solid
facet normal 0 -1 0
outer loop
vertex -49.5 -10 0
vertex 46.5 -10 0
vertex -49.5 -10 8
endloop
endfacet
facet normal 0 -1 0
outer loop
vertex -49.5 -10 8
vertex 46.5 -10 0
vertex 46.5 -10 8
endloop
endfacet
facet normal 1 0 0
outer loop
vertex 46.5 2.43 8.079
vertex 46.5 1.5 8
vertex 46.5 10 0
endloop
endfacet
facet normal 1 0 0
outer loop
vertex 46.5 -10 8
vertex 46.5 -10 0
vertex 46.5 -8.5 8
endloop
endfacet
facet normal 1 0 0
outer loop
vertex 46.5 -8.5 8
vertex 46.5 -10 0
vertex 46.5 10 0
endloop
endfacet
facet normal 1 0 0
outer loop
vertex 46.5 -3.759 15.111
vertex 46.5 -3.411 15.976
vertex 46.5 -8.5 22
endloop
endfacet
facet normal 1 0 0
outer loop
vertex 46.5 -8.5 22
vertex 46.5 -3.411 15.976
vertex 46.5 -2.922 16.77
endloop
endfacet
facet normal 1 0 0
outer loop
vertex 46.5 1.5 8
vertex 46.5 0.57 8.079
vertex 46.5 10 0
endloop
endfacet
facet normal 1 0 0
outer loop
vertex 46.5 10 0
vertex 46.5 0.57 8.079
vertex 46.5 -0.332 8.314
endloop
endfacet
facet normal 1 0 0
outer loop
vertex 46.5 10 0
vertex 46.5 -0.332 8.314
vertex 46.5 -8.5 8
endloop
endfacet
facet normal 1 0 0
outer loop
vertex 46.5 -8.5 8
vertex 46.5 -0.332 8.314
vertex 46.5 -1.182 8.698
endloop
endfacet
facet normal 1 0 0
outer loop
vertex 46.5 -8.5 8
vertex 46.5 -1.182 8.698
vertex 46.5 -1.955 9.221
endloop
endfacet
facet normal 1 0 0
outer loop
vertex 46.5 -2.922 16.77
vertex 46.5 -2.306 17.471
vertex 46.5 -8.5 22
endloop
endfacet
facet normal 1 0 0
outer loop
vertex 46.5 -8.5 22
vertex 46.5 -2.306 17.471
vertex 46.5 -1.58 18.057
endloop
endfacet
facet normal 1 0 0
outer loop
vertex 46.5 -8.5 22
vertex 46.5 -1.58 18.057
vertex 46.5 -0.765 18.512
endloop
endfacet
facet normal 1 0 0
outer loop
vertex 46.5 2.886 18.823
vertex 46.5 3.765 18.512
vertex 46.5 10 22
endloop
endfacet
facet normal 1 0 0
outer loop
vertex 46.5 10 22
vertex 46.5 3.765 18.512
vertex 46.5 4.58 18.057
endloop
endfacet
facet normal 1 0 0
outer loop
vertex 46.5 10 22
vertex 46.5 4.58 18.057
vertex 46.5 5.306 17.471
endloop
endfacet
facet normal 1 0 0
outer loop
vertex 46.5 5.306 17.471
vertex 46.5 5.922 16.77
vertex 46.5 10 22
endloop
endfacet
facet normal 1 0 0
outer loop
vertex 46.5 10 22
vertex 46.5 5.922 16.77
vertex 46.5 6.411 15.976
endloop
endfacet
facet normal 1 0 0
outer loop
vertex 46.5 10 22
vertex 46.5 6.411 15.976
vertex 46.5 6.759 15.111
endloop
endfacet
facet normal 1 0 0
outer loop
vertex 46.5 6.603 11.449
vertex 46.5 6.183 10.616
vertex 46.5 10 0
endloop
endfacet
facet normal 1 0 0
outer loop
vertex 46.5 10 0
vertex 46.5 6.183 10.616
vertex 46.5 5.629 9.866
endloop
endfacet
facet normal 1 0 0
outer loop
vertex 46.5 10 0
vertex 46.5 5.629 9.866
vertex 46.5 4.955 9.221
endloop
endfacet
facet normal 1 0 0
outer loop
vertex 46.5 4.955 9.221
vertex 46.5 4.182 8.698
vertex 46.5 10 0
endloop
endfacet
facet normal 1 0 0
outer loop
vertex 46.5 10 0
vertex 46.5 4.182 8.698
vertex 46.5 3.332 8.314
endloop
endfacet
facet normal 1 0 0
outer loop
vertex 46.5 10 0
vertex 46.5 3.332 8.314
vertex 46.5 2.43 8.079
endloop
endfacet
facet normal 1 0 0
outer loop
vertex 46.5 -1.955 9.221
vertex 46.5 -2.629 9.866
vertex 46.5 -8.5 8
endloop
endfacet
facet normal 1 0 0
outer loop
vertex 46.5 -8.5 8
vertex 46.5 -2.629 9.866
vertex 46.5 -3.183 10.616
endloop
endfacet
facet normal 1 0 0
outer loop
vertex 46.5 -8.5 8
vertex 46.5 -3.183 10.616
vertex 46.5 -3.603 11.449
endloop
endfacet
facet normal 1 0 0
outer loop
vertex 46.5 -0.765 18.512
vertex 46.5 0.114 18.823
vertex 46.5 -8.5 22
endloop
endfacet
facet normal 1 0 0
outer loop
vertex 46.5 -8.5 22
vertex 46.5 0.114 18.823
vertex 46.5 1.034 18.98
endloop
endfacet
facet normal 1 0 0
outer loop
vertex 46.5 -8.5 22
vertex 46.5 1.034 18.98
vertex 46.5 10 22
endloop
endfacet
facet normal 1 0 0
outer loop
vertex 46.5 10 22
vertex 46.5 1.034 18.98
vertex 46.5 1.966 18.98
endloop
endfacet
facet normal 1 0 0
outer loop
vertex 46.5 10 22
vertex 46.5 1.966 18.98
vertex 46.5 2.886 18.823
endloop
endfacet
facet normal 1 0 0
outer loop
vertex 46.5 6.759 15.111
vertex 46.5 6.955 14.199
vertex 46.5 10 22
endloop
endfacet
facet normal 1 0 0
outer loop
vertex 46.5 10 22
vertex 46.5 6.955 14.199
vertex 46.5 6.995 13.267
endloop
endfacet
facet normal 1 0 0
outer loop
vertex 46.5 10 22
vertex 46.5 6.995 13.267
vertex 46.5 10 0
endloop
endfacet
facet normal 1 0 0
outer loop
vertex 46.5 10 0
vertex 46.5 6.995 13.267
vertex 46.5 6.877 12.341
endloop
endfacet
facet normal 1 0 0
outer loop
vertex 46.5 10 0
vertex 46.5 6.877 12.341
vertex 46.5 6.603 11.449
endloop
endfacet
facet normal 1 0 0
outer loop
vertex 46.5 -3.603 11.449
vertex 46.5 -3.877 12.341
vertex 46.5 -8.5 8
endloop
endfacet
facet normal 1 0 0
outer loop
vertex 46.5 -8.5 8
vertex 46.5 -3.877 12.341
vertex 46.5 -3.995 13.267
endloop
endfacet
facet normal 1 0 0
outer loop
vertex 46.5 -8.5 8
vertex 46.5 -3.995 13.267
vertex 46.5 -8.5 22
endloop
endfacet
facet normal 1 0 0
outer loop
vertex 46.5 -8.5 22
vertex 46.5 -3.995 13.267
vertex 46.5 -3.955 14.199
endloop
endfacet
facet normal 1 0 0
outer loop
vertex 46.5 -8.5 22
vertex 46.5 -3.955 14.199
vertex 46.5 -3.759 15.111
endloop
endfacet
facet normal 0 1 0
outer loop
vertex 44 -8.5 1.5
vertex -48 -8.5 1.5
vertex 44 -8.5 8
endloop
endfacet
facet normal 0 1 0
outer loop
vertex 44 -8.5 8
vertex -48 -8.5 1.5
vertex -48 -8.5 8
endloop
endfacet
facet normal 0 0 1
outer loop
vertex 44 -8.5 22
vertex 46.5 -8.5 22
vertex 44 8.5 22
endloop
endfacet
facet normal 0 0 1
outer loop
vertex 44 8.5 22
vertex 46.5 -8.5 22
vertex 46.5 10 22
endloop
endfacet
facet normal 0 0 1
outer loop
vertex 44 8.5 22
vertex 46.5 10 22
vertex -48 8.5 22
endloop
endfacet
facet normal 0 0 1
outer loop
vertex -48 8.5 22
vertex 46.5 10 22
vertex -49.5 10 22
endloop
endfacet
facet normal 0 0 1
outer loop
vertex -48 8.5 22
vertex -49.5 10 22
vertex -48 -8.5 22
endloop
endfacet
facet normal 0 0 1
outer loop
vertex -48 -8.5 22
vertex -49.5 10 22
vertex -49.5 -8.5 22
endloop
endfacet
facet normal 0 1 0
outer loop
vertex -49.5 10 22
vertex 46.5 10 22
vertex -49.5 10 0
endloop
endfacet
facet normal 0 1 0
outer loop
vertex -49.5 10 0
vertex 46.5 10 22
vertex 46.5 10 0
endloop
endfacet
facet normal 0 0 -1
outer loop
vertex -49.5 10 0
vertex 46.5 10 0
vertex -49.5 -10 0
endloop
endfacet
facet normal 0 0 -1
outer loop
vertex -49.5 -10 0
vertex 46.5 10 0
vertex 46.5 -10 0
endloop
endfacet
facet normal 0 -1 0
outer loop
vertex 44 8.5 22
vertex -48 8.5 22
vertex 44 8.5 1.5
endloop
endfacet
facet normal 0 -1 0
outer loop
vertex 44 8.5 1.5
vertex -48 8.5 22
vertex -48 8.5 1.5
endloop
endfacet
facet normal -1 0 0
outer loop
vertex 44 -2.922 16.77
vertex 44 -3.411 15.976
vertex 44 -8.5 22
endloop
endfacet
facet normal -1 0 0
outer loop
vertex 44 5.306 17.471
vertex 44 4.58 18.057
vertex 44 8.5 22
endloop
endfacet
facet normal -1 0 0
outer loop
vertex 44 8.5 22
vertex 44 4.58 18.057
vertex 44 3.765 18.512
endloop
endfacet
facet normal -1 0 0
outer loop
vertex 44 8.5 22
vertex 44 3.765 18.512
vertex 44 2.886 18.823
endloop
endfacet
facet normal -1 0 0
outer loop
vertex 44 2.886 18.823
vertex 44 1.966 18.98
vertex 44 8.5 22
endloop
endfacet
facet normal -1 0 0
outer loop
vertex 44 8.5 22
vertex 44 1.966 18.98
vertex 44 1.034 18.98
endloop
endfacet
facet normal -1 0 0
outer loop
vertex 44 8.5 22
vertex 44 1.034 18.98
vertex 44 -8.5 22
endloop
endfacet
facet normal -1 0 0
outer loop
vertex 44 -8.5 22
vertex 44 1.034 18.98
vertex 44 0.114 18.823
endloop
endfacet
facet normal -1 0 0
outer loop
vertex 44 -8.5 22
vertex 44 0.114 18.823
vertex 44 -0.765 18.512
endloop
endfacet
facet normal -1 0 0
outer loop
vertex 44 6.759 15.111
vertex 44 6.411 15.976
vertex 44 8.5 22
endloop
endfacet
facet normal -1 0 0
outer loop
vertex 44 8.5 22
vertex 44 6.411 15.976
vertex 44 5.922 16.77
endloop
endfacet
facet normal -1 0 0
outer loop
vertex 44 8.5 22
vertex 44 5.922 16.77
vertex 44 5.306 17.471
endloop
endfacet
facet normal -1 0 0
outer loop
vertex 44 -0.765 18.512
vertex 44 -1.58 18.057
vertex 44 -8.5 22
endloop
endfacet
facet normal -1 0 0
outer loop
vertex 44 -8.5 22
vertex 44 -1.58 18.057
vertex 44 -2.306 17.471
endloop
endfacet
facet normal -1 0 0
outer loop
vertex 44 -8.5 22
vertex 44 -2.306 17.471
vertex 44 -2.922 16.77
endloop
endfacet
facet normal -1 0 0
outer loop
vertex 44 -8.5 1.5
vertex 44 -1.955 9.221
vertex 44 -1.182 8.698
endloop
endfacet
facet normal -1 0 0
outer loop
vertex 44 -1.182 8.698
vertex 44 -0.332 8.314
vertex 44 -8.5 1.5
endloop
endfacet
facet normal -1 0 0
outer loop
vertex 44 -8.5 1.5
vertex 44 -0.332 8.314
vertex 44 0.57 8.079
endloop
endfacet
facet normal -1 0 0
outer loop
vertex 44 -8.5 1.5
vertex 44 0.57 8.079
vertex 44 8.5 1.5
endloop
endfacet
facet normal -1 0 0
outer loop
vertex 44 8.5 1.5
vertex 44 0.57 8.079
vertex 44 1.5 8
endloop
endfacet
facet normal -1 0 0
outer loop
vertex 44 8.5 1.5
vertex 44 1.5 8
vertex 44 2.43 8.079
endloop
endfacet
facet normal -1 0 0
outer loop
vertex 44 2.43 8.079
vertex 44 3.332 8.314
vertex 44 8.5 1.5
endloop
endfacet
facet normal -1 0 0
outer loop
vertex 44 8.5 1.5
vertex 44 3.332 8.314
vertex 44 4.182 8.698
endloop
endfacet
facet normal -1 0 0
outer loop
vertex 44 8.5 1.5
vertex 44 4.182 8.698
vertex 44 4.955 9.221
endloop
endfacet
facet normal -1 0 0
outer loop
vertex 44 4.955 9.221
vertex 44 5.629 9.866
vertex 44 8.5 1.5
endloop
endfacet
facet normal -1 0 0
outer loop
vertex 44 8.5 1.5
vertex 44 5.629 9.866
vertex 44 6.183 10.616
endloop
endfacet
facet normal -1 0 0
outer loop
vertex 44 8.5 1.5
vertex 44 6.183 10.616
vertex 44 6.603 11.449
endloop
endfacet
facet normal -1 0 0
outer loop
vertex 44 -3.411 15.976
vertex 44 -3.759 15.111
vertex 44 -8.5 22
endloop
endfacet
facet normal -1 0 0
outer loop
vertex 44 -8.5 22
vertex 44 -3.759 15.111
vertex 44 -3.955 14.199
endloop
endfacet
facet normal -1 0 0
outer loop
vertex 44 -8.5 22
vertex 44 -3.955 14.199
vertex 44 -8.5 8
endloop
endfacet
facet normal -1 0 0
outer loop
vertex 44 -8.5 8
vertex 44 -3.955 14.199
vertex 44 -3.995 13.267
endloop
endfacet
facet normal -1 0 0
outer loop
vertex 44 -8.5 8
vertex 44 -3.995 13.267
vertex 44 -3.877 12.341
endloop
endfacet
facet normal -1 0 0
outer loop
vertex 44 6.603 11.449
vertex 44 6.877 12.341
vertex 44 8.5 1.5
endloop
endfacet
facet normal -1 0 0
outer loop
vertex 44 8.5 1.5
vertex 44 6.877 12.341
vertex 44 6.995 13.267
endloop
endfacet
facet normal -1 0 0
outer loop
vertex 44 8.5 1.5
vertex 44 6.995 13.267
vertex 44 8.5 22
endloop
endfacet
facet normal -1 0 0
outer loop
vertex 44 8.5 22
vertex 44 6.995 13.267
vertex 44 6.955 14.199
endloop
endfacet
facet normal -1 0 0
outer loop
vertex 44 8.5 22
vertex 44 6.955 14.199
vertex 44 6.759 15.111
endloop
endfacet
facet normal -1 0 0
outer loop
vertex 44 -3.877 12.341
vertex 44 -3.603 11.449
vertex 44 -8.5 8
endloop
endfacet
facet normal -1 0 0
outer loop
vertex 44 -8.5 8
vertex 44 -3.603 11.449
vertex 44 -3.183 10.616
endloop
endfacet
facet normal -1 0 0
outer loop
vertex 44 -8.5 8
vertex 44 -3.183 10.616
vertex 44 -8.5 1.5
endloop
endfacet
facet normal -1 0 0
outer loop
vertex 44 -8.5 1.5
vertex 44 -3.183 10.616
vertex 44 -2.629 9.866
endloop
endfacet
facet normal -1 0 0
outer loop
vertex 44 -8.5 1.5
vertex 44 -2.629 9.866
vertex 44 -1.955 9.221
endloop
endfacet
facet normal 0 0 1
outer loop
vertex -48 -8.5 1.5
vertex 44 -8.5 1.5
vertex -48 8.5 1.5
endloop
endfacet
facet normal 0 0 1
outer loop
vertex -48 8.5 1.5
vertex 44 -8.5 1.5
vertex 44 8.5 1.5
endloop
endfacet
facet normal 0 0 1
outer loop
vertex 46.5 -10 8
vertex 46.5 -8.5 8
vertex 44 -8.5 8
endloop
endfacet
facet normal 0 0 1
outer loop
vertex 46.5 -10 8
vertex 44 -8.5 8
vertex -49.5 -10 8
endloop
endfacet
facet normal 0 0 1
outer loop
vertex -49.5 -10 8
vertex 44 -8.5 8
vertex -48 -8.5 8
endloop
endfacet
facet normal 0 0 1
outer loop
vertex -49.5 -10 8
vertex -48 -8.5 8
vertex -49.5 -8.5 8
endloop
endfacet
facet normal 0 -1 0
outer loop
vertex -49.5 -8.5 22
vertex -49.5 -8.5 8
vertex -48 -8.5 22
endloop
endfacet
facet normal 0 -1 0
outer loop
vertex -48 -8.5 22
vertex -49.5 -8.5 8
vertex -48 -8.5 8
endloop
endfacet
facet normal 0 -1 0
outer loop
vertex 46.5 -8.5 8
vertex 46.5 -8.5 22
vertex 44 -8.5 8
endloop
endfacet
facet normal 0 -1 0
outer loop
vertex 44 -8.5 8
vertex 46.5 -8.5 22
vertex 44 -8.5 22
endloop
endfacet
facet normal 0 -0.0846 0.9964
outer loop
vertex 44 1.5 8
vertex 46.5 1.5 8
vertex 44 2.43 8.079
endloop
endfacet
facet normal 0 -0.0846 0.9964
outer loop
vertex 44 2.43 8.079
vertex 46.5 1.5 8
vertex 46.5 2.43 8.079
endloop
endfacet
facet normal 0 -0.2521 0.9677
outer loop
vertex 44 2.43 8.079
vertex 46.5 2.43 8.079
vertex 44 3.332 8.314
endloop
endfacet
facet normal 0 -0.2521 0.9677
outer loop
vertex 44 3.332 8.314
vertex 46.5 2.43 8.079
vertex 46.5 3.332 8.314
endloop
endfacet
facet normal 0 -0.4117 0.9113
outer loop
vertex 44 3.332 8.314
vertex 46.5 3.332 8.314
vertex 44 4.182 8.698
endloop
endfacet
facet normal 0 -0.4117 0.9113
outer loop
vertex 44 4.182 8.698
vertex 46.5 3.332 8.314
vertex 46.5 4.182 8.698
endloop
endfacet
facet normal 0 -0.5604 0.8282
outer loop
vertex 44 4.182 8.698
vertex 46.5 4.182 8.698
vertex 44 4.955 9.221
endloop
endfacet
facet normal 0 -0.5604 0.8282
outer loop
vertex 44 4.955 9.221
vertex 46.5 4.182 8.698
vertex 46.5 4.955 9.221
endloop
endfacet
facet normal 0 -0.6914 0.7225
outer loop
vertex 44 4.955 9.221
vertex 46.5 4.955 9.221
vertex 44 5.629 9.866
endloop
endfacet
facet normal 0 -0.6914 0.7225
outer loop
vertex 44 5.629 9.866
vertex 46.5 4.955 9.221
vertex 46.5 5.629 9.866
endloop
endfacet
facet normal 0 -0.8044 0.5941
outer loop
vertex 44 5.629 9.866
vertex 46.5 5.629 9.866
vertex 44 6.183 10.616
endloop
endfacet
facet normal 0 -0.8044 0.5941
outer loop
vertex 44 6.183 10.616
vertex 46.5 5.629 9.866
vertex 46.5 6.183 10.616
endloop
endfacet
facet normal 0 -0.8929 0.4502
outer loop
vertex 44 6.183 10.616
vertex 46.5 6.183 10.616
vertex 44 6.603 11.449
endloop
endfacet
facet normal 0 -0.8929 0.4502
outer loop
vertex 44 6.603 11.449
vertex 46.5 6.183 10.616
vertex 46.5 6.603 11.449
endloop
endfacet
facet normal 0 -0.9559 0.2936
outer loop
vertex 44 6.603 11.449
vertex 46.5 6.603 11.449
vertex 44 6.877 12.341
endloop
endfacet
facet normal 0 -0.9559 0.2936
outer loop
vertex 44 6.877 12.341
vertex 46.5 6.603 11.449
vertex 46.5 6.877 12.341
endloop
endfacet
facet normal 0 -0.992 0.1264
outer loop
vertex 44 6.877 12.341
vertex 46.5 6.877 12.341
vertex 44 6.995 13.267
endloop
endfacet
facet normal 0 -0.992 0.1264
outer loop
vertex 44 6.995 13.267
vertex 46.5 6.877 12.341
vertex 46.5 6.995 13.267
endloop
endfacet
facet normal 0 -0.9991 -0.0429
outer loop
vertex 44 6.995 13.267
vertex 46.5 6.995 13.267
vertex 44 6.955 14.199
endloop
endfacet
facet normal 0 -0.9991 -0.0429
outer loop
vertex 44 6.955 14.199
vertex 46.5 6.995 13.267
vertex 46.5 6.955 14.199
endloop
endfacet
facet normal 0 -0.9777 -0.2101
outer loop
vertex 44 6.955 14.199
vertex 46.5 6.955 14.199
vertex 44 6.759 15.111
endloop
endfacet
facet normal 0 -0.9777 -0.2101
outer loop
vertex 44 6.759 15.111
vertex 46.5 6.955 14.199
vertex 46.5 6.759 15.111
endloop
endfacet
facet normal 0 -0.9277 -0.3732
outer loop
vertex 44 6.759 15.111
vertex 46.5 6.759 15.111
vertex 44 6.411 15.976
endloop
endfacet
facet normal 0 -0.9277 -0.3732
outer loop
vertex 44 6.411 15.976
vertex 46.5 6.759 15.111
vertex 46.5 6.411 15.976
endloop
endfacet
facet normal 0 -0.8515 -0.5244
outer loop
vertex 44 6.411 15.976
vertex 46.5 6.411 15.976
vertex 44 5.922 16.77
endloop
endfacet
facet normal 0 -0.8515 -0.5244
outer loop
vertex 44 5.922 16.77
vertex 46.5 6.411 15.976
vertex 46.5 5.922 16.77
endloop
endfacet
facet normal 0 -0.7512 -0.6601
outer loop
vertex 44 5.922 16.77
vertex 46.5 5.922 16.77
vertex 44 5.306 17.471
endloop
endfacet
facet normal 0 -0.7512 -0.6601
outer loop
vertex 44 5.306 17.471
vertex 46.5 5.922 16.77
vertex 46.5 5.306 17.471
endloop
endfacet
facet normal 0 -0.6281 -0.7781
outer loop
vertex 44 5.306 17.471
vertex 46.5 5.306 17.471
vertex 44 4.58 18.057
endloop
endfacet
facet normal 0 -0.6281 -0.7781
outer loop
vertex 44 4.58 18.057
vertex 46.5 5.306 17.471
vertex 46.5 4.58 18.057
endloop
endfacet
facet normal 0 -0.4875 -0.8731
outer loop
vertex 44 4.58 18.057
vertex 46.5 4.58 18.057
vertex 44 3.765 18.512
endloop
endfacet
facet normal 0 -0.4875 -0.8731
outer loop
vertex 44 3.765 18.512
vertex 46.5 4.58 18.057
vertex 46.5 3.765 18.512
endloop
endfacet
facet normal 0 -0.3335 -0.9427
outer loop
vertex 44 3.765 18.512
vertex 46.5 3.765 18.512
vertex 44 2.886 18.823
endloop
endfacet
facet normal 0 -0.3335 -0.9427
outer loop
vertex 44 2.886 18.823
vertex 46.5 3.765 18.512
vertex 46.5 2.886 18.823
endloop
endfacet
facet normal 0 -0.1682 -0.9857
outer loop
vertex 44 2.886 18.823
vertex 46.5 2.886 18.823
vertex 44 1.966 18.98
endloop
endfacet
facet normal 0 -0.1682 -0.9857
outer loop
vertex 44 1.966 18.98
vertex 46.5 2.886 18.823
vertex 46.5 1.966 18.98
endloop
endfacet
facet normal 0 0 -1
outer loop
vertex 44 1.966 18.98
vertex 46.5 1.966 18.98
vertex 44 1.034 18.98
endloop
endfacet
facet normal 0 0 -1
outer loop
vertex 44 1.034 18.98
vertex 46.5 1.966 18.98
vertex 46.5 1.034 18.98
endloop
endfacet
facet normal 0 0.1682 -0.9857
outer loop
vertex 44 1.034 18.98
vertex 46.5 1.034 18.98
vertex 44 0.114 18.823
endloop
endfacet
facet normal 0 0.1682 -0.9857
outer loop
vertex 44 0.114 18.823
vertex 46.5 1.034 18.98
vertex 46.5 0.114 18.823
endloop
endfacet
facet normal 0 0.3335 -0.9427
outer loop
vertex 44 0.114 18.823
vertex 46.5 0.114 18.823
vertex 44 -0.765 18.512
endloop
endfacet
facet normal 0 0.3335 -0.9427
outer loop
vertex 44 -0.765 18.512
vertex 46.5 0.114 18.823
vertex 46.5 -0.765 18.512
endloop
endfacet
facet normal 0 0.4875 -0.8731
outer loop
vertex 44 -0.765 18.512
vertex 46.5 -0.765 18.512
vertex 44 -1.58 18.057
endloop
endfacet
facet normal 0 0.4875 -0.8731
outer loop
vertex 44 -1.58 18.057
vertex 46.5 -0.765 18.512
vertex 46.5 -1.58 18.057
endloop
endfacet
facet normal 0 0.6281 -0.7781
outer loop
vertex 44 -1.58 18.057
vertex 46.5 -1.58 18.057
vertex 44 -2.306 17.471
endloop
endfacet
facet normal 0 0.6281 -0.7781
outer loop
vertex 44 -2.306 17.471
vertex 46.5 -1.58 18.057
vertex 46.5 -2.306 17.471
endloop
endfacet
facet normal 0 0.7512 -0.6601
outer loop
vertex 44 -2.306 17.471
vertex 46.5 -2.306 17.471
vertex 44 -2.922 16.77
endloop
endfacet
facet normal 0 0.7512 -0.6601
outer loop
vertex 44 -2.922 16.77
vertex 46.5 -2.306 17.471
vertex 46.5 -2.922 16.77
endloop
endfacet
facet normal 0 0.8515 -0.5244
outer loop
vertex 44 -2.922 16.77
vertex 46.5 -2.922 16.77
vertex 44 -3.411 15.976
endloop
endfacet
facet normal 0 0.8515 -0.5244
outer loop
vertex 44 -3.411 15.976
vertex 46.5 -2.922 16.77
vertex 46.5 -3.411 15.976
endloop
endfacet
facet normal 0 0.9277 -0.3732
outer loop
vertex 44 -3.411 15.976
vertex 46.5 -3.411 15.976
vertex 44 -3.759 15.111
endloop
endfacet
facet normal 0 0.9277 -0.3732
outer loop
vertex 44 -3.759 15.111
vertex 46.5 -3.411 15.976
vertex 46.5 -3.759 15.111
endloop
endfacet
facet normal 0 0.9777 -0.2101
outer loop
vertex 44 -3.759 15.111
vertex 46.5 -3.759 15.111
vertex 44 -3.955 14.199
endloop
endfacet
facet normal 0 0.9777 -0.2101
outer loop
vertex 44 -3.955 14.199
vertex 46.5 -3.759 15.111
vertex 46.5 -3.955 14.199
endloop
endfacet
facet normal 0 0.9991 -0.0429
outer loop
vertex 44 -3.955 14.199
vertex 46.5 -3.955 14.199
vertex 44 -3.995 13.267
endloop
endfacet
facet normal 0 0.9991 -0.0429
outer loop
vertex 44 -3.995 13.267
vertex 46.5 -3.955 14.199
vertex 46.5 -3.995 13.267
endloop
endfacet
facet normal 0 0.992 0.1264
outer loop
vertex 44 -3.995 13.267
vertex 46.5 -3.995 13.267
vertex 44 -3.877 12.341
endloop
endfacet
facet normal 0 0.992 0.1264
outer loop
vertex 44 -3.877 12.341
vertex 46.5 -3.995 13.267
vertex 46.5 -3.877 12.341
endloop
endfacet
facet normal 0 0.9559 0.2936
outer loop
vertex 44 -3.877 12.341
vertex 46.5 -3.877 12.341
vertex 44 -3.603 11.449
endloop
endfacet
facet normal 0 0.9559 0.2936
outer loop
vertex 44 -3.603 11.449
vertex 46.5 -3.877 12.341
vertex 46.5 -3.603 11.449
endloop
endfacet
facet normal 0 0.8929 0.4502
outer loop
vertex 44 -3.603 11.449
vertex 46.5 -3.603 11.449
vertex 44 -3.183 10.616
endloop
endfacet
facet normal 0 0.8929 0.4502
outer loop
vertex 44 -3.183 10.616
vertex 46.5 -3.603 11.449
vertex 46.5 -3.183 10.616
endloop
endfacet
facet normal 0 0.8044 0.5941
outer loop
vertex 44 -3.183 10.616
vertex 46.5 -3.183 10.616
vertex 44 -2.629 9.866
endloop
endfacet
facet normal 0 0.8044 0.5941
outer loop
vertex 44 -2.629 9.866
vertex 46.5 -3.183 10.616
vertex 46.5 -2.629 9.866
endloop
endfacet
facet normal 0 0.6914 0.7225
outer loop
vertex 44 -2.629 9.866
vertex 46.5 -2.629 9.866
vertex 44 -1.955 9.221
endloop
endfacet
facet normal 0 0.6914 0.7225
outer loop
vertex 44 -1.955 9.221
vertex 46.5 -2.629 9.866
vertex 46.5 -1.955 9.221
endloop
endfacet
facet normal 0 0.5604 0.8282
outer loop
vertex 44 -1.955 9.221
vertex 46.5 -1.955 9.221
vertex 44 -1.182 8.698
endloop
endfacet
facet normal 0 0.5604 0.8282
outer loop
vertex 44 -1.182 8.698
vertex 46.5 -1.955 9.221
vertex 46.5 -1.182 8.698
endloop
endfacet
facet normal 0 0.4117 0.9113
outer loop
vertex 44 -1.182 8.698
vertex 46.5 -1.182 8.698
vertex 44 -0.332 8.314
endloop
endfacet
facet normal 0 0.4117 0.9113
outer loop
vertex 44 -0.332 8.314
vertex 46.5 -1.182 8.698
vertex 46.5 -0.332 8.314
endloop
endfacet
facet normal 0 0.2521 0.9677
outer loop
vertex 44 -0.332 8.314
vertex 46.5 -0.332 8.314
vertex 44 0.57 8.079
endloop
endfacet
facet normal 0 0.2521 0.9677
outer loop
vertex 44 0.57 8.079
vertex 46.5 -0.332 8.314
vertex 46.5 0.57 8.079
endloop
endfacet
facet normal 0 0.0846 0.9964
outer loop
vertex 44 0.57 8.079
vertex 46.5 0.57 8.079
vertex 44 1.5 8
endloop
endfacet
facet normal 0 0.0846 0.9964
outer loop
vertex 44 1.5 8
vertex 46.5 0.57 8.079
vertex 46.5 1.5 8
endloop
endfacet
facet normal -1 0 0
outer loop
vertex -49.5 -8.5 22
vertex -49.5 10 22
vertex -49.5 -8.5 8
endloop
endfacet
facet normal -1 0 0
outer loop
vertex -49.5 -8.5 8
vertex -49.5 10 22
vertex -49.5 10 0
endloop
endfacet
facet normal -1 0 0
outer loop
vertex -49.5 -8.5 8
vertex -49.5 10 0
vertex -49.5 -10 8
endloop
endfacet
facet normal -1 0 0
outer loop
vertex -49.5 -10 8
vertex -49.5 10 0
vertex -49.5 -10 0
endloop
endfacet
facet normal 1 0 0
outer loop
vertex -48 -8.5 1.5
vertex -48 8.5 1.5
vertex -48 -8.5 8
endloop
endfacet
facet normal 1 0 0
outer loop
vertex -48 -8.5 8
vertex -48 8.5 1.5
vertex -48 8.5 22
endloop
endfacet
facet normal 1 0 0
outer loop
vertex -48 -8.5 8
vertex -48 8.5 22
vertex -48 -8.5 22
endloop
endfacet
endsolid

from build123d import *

# Parameters (mm, degrees)
SKETCH_1_W          = 93
SKETCH_1_H          = 20
EXTRUDE_1_DEPTH     = 1.5
SKETCH_2_W          = 93
SKETCH_2_H          = 20
SKETCH_2_W_2        = 89
SKETCH_2_H_2        = 17
EXTRUDE_2_DEPTH     = 20.5
SKETCH_3_W          = 14
SKETCH_3_H          = 1.5
CUT_EXTRUDE_1_DEPTH = 101.5
SKETCH_4_R          = 5.5
CUT_EXTRUDE_4_DEPTH = 3
EXTRUDE_3_DEPTH     = 3
SKETCH_7_W          = 3
SKETCH_7_H          = 17
CUT_EXTRUDE_6_DEPTH = 20.5


with BuildPart() as part:
    # Эскиз1 → Бобышка-Вытянуть1 (new body)
    with BuildSketch(Plane.XY):
        Rectangle(SKETCH_1_W, SKETCH_1_H)
    extrude(amount=EXTRUDE_1_DEPTH)

    # Эскиз2 → Бобышка-Вытянуть2 (add)
    with BuildSketch(Plane.XY.offset(1.5)):
        Rectangle(SKETCH_2_W, SKETCH_2_H)
        with Locations((-0.5, 0)):
            Rectangle(SKETCH_2_W_2, SKETCH_2_H_2, mode=Mode.SUBTRACT)
    extrude(amount=EXTRUDE_2_DEPTH)

    # Эскиз3 → Вырез-Вытянуть1 (cut)
    with BuildSketch(Plane(origin=(46.5, 0, 0), x_dir=(0, 0, -1), z_dir=(1, 0, 0))):
        with Locations((-15, -9.25)):
            Rectangle(SKETCH_3_W, SKETCH_3_H)
    extrude(amount=-CUT_EXTRUDE_1_DEPTH, mode=Mode.SUBTRACT)

    # Эскиз4 → Вырез-Вытянуть4 (cut)
    with BuildSketch(Plane(origin=(46.5, 0, 0), x_dir=(0, 0, -1), z_dir=(1, 0, 0))):
        with Locations((-13.5, 1.5)):
            Circle(SKETCH_4_R)
    extrude(amount=-CUT_EXTRUDE_4_DEPTH, mode=Mode.SUBTRACT)

    # Эскиз6 → Бобышка-Вытянуть3 (add)
    with BuildSketch(Plane.ZY.offset(46.5)):
        Polygon((0, 10), (22, 10), (22, -8.5), (8, -8.5), (8, -10), (0, -10), (0, -8.5), align=None)
    extrude(amount=EXTRUDE_3_DEPTH)

    # Эскиз7 → Вырез-Вытянуть6 (cut)
    with BuildSketch(Plane.XY.offset(22)):
        with Locations((-46.5, 0)):
            Rectangle(SKETCH_7_W, SKETCH_7_H)
    extrude(amount=-CUT_EXTRUDE_6_DEPTH, mode=Mode.SUBTRACT)


solid = part.part
